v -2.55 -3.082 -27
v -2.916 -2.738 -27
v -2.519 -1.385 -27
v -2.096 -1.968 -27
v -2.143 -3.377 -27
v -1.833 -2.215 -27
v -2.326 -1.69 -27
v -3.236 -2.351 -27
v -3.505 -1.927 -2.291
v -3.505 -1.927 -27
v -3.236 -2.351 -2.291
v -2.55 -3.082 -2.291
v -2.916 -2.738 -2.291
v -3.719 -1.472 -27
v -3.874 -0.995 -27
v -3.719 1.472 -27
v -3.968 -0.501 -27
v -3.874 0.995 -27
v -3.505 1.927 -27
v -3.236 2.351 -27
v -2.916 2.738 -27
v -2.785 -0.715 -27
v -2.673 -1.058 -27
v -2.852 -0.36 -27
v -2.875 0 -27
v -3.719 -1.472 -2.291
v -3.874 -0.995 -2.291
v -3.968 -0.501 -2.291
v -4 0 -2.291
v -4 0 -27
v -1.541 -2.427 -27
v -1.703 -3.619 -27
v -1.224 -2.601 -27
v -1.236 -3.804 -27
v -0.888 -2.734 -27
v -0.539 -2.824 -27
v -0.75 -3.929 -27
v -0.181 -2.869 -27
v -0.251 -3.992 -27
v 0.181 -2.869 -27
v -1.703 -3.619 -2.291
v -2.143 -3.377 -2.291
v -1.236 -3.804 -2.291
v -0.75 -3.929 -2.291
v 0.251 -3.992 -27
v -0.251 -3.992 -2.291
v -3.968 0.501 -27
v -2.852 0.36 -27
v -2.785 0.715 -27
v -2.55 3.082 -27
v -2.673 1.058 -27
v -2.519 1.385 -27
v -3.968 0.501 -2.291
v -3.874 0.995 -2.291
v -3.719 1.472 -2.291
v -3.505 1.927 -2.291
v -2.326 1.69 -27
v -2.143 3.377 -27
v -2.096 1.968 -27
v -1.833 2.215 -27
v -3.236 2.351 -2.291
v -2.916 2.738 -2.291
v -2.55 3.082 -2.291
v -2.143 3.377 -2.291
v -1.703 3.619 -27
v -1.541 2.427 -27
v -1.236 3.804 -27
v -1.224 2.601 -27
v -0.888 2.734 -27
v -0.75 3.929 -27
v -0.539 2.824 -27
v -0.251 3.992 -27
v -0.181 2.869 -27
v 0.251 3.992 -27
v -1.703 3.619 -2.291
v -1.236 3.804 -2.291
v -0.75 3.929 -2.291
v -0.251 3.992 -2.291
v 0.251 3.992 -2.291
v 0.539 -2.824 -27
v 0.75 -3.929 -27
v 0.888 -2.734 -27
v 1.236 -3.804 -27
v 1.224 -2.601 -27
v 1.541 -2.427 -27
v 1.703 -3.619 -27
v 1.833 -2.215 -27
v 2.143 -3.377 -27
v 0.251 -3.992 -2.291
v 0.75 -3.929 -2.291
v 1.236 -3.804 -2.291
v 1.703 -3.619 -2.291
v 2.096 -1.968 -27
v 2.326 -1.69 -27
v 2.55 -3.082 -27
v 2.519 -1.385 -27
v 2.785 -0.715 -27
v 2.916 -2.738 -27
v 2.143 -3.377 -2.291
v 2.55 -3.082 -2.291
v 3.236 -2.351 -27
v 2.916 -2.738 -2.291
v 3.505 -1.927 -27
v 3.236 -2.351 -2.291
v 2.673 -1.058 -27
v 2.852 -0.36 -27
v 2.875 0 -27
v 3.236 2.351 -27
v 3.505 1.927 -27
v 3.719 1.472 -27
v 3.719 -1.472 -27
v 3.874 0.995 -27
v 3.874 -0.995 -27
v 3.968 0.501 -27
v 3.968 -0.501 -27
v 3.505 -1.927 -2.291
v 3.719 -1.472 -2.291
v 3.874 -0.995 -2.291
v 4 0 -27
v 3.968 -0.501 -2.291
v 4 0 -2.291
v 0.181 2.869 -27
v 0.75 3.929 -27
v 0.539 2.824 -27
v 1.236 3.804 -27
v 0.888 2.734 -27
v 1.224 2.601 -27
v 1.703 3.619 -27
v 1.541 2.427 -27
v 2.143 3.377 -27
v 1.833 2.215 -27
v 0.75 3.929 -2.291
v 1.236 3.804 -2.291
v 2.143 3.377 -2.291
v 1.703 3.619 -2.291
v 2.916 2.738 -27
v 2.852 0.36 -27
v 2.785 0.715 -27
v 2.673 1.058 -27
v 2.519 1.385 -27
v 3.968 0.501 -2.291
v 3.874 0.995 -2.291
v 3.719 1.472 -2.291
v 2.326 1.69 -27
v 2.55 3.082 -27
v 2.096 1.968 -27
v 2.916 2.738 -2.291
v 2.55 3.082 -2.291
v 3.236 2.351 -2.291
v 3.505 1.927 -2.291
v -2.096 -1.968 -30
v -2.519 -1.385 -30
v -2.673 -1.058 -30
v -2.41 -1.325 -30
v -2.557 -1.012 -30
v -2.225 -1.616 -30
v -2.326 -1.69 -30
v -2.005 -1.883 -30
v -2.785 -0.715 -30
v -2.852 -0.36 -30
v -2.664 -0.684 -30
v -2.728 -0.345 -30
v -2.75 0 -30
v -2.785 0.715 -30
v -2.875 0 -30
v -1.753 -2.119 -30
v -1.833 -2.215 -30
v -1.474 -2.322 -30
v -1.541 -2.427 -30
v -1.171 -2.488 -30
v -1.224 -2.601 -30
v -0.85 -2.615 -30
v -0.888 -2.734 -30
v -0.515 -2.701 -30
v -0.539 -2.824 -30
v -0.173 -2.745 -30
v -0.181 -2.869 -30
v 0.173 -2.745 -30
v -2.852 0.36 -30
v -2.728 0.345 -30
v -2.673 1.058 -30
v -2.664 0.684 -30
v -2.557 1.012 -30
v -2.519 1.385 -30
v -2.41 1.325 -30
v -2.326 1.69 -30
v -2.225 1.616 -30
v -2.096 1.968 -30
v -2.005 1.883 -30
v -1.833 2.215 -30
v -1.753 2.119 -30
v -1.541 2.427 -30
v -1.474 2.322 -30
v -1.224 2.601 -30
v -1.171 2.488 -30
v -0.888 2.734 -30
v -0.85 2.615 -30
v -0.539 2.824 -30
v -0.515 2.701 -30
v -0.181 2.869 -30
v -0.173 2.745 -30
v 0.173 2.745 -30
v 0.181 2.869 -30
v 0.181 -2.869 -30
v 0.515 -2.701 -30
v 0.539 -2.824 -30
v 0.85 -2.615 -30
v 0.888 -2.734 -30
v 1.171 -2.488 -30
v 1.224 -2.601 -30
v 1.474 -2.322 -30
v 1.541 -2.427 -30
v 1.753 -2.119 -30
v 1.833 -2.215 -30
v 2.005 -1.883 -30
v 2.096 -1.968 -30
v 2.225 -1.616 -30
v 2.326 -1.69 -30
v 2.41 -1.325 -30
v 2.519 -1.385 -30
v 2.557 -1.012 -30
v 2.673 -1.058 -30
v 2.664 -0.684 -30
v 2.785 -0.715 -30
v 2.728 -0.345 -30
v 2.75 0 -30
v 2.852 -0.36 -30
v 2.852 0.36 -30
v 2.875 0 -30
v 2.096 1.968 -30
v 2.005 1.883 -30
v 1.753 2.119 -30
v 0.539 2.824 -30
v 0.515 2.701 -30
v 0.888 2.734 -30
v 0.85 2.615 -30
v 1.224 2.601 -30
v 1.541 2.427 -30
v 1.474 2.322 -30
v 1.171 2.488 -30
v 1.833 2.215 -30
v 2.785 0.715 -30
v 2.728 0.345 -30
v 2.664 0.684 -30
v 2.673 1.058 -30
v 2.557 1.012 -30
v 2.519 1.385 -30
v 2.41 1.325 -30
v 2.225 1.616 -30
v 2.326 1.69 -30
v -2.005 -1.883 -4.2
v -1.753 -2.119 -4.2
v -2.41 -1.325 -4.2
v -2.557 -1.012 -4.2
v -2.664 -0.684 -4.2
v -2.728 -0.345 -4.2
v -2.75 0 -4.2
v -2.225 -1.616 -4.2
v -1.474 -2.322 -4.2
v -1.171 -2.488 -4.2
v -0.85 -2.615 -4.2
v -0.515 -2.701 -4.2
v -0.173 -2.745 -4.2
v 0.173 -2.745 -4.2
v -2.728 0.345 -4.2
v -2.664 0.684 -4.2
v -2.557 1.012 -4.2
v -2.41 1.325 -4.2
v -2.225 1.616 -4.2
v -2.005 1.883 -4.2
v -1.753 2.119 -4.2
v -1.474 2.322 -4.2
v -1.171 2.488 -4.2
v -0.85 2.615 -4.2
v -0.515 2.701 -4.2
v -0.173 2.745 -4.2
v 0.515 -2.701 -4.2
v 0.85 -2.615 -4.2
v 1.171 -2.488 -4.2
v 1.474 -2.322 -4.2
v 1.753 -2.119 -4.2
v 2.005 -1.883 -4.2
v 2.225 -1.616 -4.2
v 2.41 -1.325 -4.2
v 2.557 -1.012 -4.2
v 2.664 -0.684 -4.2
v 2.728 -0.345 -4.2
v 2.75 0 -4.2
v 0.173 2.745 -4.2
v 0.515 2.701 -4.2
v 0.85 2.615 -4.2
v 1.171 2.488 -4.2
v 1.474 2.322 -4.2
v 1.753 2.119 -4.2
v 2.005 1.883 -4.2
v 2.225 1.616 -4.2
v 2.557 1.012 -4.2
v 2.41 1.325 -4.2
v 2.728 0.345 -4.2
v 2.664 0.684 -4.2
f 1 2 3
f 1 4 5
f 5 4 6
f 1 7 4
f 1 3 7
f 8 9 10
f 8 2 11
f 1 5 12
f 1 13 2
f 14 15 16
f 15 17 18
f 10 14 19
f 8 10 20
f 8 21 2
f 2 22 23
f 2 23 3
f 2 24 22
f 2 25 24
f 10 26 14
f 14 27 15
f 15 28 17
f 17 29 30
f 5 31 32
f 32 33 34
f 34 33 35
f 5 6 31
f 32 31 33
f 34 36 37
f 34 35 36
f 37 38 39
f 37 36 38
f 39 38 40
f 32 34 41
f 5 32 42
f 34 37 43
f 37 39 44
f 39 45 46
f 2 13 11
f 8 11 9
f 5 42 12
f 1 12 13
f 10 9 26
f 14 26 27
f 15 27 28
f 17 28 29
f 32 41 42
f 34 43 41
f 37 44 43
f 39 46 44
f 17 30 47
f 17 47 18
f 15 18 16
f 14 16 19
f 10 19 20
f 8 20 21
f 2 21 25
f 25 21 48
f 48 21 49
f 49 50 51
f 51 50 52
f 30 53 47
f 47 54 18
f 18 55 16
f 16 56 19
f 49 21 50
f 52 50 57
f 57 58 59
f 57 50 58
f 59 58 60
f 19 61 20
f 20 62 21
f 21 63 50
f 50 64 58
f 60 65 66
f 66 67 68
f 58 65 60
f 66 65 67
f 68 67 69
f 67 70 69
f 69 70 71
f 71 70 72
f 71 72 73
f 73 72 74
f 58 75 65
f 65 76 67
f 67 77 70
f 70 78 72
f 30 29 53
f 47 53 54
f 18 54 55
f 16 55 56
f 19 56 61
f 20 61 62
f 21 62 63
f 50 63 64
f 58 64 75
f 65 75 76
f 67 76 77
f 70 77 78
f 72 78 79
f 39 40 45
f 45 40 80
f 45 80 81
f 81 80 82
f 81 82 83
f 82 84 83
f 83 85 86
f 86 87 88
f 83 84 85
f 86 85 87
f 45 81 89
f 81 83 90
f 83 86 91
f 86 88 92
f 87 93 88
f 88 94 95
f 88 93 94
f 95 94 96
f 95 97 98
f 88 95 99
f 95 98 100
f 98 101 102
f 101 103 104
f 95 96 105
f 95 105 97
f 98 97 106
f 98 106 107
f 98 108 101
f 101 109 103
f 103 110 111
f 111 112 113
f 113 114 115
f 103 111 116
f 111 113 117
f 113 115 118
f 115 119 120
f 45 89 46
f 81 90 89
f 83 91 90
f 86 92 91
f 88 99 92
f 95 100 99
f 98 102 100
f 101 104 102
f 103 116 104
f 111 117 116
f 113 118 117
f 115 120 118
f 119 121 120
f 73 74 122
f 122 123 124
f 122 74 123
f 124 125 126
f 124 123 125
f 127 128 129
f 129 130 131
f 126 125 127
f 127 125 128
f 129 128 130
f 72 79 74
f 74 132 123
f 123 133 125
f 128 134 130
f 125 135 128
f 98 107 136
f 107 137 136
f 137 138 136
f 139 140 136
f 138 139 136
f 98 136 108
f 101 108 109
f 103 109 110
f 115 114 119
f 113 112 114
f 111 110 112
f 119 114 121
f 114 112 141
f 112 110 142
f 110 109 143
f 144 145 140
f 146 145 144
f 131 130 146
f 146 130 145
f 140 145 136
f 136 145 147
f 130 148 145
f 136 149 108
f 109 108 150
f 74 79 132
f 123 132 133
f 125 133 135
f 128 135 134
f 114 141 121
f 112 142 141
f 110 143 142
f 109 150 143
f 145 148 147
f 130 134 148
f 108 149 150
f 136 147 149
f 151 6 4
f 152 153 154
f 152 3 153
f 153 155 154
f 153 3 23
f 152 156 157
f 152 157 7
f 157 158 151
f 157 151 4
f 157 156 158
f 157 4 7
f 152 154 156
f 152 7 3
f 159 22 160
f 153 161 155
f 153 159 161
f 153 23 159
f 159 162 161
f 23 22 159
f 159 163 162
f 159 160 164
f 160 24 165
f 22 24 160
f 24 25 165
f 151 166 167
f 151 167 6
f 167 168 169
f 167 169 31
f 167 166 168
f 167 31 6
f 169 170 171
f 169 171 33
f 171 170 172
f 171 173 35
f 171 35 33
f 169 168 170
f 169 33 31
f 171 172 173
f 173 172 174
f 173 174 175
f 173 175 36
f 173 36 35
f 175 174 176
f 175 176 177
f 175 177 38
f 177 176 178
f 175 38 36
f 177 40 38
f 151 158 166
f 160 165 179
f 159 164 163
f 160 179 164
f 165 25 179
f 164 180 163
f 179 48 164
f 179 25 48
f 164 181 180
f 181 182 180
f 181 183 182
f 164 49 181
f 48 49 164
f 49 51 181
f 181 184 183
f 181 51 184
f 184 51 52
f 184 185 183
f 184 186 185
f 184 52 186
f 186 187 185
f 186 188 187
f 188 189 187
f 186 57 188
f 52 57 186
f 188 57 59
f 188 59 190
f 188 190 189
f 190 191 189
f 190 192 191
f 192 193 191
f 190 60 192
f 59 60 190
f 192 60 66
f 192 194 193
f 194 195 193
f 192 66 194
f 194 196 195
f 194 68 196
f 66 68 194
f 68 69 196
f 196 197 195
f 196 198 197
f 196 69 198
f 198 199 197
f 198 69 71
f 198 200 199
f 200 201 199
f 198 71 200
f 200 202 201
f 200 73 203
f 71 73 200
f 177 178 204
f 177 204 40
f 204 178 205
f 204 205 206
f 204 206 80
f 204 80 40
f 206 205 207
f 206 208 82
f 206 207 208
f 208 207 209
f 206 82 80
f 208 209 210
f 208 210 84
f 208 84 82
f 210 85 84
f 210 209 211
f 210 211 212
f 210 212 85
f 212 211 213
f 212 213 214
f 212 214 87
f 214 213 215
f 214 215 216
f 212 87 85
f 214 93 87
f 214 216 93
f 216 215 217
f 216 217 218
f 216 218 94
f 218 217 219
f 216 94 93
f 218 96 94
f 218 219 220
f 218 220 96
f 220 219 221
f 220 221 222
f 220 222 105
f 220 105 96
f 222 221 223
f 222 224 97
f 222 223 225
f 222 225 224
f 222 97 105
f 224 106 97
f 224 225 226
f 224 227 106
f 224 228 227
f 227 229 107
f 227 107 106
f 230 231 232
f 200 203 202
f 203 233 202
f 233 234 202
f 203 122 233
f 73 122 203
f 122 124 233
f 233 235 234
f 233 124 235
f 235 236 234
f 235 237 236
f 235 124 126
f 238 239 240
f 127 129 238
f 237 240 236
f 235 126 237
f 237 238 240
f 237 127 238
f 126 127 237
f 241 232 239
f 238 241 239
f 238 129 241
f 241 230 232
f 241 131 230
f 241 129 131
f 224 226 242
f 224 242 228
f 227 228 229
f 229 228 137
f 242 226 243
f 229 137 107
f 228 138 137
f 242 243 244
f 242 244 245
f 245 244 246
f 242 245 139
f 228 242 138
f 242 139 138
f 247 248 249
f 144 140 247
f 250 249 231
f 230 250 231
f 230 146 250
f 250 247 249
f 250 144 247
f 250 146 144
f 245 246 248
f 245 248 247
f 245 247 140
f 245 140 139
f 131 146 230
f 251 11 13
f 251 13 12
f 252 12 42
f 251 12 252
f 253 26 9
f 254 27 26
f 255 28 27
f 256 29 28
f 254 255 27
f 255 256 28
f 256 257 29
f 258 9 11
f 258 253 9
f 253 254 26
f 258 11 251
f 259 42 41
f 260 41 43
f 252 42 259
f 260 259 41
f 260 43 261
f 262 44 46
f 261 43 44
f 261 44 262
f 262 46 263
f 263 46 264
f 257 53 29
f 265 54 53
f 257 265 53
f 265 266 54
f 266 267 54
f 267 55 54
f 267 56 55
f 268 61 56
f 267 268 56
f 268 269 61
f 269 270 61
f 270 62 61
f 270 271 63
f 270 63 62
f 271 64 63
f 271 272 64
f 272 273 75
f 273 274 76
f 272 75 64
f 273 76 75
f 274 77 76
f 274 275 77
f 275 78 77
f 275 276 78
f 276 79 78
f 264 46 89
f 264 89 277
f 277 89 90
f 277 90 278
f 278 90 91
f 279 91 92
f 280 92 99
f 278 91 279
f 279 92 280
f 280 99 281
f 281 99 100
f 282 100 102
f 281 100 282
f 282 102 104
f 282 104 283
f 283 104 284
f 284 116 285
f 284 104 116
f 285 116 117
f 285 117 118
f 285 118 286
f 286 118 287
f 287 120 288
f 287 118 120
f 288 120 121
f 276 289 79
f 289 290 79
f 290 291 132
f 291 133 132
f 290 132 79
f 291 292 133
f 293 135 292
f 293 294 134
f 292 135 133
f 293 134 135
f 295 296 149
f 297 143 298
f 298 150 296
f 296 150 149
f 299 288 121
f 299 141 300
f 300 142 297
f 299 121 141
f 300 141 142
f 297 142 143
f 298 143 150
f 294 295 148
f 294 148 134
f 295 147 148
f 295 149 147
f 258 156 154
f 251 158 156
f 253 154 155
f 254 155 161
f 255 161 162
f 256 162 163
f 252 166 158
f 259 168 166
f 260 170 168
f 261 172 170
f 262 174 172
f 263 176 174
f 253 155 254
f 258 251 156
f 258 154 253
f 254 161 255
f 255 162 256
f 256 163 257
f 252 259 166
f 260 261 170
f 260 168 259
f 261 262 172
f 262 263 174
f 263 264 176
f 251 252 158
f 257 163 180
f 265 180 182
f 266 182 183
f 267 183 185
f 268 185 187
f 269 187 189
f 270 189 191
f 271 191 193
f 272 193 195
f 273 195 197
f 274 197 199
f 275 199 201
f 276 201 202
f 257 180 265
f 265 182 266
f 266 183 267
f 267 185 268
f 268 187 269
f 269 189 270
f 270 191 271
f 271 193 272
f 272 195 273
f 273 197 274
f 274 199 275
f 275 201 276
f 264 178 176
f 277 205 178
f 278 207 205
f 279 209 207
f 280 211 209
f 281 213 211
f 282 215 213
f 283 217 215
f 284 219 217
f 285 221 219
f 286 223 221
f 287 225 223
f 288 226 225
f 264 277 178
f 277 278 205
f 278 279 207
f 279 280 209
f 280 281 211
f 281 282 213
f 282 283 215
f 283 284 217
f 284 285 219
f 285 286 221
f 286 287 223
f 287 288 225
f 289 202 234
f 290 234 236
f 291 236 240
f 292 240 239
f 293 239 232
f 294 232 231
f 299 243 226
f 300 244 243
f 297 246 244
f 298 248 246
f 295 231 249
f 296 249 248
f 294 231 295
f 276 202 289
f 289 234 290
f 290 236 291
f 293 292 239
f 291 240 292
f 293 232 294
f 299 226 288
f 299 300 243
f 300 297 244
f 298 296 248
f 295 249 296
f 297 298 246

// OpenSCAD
$fn = 50;

difference() {
	union() {
		translate(v = [0, 0, -27.0]) {
			cylinder(h = 30, r = 4.0);
		}
		#translate(v = [0, 0, -30.0]) {
			cylinder(h = 30, r = 2.875);
		}
	}
	union() {
		translate(v = [0, 0, 0]) {
			rotate(a = [0, 0, 0]) {
				difference() {
					union() {
						translate(v = [0, 0, -30.0]) {
							cylinder(h = 30, r = 2.25);
						}
						translate(v = [0, 0, -4.2]) {
							cylinder(h = 4.2, r1 = 2.75, r2 = 5.5);
						}
						translate(v = [0, 0, -30.0]) {
							cylinder(h = 30, r = 2.75);
						}
						translate(v = [0, 0, -30.0]) {
							cylinder(h = 30, r = 2.25);
						}
					}
					union();
				}
			}
		}
		#cylinder(h = 3, r = 6.25);
	}
}
